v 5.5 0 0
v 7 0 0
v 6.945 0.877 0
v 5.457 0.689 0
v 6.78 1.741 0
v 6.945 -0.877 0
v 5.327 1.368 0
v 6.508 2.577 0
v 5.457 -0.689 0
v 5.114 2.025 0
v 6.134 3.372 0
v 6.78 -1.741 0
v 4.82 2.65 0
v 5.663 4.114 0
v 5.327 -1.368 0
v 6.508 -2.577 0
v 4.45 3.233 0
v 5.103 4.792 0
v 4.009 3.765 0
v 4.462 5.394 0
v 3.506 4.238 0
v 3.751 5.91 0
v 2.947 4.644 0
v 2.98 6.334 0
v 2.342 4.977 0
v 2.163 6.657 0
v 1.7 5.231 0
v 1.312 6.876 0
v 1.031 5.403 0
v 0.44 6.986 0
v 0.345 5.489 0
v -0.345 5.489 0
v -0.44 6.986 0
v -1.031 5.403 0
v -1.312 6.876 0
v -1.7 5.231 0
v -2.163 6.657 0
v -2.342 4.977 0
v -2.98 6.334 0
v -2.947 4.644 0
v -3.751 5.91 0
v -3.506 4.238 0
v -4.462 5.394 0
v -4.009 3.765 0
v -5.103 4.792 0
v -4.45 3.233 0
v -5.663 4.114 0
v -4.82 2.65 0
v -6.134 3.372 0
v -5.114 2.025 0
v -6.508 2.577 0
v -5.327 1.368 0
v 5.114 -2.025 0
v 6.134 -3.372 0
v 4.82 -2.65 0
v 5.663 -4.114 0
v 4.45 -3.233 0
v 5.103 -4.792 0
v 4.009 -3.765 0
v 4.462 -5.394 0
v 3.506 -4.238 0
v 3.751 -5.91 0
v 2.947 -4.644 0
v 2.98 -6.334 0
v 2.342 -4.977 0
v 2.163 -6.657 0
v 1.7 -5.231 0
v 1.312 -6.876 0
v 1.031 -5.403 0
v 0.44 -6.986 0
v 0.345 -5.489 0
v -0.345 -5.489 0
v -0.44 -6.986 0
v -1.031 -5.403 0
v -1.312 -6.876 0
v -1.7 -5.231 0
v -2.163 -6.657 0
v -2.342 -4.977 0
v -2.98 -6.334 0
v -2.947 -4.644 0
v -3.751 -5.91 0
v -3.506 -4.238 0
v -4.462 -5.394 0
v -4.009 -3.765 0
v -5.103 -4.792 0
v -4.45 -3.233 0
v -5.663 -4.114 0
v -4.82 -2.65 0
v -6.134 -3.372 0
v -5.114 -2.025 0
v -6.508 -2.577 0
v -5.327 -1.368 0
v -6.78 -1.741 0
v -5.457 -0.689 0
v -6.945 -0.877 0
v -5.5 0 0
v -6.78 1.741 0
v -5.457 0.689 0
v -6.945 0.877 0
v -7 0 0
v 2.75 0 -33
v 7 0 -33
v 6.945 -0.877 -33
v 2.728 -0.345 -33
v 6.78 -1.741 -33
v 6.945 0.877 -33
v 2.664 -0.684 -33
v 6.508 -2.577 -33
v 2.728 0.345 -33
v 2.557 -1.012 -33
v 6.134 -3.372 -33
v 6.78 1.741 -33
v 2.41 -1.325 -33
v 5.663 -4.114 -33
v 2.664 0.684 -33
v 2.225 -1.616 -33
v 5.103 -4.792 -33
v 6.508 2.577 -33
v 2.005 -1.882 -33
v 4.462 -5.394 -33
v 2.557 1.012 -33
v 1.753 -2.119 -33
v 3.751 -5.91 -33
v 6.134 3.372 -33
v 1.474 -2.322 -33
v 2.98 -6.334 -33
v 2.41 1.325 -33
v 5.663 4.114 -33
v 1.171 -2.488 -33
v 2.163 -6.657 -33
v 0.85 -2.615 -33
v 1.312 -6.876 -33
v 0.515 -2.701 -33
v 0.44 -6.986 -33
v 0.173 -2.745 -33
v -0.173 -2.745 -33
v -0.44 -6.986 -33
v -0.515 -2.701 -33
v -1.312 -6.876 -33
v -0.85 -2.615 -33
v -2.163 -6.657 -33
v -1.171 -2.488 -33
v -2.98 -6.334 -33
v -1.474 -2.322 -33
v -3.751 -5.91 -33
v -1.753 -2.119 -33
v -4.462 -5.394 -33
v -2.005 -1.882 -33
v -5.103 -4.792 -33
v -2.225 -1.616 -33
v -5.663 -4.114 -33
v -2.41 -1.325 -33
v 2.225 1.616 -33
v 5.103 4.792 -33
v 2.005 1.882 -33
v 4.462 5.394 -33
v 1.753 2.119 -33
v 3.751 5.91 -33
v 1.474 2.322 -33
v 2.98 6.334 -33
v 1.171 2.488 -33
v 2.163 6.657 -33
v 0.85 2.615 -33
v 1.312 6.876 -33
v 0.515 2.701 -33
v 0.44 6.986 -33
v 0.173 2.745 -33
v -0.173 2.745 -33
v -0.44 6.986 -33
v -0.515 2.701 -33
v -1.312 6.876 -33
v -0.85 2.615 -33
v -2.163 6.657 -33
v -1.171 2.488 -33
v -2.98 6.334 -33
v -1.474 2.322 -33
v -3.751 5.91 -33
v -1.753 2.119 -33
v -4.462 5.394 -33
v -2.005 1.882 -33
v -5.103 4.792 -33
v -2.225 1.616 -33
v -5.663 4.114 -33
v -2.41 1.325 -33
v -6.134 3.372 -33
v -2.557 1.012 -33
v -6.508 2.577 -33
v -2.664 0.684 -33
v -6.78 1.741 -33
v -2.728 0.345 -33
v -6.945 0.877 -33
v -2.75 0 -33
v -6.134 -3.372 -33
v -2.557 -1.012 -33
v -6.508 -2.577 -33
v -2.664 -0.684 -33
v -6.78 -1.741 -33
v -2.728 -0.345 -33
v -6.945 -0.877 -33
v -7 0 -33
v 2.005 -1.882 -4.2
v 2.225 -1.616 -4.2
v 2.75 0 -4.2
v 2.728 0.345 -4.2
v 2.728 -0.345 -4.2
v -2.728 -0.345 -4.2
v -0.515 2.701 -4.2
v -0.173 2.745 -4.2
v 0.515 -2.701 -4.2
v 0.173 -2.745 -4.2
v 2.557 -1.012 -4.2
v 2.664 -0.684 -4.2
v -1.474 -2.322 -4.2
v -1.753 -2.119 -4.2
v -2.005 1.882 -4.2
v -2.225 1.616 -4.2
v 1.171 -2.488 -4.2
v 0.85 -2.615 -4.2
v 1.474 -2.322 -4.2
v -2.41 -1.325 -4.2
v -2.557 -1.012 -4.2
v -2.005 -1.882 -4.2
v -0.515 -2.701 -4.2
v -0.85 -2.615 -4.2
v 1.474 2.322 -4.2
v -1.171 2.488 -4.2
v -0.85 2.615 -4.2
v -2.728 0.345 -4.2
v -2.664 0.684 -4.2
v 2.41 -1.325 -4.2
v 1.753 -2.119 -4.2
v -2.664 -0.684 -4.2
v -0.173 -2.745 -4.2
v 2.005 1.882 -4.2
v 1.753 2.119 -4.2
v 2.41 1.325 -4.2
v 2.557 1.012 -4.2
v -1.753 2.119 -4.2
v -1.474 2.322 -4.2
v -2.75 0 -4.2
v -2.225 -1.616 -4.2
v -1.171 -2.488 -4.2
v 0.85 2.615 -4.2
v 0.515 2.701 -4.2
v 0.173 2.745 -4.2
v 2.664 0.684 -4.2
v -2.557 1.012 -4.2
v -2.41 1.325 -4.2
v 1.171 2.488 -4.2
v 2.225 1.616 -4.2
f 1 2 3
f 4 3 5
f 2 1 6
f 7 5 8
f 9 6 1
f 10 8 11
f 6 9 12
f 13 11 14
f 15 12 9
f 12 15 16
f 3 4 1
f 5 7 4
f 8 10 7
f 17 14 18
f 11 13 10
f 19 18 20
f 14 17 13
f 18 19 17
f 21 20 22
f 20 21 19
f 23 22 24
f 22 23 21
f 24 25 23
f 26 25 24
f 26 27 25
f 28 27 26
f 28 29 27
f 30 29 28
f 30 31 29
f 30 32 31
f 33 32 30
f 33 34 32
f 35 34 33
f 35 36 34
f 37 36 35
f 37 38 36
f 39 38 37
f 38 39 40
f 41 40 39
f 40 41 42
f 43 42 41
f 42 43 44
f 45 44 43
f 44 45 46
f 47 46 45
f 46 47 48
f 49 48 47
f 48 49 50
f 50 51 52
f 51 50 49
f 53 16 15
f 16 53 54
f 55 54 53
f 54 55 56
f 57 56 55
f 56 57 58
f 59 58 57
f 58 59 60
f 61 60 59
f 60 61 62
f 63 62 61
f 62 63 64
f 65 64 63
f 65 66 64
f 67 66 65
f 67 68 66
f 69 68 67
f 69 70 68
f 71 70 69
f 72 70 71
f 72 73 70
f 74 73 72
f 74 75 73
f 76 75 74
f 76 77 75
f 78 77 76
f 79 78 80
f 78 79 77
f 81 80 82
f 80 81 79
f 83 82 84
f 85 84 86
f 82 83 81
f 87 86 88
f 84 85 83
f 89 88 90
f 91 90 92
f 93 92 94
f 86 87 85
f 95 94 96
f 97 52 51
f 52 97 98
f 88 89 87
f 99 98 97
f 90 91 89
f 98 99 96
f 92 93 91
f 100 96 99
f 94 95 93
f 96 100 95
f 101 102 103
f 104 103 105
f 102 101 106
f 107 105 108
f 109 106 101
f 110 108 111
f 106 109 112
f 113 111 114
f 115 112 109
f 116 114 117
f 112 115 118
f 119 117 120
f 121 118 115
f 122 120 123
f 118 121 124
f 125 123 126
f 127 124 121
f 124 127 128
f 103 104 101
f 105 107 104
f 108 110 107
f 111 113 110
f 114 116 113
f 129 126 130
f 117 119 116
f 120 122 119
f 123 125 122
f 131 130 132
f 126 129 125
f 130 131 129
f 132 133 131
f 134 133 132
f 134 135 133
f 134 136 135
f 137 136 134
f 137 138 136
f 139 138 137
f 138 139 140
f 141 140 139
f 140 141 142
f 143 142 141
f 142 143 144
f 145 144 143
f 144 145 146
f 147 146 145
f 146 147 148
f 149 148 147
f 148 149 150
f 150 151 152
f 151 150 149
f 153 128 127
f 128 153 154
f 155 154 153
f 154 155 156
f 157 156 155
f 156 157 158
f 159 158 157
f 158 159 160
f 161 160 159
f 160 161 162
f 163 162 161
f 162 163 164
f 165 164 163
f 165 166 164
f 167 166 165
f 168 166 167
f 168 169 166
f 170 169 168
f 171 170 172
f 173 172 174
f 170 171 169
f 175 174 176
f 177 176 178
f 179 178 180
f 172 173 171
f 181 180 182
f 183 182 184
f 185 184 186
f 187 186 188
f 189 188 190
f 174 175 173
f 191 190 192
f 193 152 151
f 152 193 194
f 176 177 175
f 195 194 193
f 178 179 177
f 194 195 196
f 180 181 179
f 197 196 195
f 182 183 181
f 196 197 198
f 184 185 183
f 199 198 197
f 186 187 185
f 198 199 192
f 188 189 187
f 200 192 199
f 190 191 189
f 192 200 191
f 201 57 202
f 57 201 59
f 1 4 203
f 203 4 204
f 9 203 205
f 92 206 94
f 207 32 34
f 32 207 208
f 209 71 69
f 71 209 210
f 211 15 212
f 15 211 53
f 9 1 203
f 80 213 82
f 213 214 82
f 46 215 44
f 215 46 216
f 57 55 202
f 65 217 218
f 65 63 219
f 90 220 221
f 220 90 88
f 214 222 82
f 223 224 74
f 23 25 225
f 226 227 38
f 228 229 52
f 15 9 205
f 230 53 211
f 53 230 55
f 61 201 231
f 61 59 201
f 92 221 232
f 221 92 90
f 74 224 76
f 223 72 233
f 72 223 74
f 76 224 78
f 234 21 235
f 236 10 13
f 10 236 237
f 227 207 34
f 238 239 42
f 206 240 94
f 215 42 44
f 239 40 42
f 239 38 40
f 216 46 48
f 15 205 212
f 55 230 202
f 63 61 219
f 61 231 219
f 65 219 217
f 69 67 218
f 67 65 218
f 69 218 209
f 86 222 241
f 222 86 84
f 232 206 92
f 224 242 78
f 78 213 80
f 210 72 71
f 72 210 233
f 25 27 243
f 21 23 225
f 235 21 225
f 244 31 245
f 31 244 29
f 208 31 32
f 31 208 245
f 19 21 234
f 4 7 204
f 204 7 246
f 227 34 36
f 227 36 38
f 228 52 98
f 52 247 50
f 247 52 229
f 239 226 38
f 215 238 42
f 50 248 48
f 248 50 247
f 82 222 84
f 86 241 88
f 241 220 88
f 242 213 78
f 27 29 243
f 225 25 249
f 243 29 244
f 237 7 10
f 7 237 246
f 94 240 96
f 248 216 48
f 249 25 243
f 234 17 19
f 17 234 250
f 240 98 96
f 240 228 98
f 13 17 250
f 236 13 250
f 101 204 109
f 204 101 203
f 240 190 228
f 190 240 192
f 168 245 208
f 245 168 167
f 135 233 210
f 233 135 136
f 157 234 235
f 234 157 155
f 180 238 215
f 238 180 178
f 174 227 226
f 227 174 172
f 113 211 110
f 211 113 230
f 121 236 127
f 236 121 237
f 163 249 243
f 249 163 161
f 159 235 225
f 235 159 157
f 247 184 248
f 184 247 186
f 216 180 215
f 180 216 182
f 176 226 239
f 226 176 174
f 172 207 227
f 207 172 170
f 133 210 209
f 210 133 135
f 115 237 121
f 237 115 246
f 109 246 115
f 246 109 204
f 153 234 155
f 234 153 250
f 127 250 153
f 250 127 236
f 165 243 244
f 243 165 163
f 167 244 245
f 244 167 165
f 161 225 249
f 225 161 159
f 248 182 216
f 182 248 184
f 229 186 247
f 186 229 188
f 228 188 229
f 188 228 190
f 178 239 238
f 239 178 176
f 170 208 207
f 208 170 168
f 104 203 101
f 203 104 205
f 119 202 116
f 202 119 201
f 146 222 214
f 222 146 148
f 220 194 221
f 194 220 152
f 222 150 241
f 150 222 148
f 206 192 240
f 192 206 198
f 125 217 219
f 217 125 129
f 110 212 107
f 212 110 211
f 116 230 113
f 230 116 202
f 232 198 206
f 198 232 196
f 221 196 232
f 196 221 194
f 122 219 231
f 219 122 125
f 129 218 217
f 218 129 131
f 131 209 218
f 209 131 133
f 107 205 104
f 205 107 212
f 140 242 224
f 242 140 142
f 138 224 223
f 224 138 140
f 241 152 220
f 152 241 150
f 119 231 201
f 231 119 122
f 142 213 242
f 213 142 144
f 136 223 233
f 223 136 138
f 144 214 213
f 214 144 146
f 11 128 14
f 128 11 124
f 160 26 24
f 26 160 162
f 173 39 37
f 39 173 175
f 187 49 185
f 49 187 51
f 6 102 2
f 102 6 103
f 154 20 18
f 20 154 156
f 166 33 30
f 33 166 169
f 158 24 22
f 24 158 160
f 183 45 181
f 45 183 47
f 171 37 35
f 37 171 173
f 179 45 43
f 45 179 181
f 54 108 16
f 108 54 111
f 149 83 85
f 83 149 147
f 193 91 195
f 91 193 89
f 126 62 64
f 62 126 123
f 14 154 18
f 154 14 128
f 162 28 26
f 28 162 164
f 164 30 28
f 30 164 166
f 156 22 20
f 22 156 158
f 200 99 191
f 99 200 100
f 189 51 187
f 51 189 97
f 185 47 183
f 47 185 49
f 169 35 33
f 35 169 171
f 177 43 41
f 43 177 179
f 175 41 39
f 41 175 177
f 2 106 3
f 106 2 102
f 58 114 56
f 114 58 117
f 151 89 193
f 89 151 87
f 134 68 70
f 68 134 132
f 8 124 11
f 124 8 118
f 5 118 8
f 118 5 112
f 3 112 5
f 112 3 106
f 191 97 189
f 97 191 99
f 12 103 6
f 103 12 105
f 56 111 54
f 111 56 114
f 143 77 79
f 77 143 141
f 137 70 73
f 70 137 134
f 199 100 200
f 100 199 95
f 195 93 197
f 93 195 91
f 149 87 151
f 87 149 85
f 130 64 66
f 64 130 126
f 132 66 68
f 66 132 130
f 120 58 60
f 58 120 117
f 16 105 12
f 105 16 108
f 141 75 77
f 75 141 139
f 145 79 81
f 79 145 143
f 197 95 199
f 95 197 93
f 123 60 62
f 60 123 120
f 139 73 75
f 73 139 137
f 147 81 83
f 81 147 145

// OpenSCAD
$fn = 50;


difference() {
	union() {
		translate(v = [0, 0, -33.0000000000]) {
			cylinder(h = 33, r = 7.0000000000);
		}
		cylinder(h = 0, r = 16.0000000000);
	}
	union() {
		translate(v = [0, 0, 0]) {
			rotate(a = [0, 0, 0]) {
				difference() {
					union() {
						#translate(v = [0, 0, -33.0000000000]) {
							cylinder(h = 33, r = 2.2500000000);
						}
						#translate(v = [0, 0, -4.2000000000]) {
							cylinder(h = 4.2000000000, r = 7.0000000000, r1 = 2.7500000000, r2 = 5.5000000000);
						}
						#translate(v = [0, 0, -33.0000000000]) {
							cylinder(h = 33, r = 2.7500000000);
						}
						#translate(v = [0, 0, -33.0000000000]) {
							cylinder(h = 33, r = 2.2500000000);
						}
					}
					union();
				}
			}
		}
	}
}
